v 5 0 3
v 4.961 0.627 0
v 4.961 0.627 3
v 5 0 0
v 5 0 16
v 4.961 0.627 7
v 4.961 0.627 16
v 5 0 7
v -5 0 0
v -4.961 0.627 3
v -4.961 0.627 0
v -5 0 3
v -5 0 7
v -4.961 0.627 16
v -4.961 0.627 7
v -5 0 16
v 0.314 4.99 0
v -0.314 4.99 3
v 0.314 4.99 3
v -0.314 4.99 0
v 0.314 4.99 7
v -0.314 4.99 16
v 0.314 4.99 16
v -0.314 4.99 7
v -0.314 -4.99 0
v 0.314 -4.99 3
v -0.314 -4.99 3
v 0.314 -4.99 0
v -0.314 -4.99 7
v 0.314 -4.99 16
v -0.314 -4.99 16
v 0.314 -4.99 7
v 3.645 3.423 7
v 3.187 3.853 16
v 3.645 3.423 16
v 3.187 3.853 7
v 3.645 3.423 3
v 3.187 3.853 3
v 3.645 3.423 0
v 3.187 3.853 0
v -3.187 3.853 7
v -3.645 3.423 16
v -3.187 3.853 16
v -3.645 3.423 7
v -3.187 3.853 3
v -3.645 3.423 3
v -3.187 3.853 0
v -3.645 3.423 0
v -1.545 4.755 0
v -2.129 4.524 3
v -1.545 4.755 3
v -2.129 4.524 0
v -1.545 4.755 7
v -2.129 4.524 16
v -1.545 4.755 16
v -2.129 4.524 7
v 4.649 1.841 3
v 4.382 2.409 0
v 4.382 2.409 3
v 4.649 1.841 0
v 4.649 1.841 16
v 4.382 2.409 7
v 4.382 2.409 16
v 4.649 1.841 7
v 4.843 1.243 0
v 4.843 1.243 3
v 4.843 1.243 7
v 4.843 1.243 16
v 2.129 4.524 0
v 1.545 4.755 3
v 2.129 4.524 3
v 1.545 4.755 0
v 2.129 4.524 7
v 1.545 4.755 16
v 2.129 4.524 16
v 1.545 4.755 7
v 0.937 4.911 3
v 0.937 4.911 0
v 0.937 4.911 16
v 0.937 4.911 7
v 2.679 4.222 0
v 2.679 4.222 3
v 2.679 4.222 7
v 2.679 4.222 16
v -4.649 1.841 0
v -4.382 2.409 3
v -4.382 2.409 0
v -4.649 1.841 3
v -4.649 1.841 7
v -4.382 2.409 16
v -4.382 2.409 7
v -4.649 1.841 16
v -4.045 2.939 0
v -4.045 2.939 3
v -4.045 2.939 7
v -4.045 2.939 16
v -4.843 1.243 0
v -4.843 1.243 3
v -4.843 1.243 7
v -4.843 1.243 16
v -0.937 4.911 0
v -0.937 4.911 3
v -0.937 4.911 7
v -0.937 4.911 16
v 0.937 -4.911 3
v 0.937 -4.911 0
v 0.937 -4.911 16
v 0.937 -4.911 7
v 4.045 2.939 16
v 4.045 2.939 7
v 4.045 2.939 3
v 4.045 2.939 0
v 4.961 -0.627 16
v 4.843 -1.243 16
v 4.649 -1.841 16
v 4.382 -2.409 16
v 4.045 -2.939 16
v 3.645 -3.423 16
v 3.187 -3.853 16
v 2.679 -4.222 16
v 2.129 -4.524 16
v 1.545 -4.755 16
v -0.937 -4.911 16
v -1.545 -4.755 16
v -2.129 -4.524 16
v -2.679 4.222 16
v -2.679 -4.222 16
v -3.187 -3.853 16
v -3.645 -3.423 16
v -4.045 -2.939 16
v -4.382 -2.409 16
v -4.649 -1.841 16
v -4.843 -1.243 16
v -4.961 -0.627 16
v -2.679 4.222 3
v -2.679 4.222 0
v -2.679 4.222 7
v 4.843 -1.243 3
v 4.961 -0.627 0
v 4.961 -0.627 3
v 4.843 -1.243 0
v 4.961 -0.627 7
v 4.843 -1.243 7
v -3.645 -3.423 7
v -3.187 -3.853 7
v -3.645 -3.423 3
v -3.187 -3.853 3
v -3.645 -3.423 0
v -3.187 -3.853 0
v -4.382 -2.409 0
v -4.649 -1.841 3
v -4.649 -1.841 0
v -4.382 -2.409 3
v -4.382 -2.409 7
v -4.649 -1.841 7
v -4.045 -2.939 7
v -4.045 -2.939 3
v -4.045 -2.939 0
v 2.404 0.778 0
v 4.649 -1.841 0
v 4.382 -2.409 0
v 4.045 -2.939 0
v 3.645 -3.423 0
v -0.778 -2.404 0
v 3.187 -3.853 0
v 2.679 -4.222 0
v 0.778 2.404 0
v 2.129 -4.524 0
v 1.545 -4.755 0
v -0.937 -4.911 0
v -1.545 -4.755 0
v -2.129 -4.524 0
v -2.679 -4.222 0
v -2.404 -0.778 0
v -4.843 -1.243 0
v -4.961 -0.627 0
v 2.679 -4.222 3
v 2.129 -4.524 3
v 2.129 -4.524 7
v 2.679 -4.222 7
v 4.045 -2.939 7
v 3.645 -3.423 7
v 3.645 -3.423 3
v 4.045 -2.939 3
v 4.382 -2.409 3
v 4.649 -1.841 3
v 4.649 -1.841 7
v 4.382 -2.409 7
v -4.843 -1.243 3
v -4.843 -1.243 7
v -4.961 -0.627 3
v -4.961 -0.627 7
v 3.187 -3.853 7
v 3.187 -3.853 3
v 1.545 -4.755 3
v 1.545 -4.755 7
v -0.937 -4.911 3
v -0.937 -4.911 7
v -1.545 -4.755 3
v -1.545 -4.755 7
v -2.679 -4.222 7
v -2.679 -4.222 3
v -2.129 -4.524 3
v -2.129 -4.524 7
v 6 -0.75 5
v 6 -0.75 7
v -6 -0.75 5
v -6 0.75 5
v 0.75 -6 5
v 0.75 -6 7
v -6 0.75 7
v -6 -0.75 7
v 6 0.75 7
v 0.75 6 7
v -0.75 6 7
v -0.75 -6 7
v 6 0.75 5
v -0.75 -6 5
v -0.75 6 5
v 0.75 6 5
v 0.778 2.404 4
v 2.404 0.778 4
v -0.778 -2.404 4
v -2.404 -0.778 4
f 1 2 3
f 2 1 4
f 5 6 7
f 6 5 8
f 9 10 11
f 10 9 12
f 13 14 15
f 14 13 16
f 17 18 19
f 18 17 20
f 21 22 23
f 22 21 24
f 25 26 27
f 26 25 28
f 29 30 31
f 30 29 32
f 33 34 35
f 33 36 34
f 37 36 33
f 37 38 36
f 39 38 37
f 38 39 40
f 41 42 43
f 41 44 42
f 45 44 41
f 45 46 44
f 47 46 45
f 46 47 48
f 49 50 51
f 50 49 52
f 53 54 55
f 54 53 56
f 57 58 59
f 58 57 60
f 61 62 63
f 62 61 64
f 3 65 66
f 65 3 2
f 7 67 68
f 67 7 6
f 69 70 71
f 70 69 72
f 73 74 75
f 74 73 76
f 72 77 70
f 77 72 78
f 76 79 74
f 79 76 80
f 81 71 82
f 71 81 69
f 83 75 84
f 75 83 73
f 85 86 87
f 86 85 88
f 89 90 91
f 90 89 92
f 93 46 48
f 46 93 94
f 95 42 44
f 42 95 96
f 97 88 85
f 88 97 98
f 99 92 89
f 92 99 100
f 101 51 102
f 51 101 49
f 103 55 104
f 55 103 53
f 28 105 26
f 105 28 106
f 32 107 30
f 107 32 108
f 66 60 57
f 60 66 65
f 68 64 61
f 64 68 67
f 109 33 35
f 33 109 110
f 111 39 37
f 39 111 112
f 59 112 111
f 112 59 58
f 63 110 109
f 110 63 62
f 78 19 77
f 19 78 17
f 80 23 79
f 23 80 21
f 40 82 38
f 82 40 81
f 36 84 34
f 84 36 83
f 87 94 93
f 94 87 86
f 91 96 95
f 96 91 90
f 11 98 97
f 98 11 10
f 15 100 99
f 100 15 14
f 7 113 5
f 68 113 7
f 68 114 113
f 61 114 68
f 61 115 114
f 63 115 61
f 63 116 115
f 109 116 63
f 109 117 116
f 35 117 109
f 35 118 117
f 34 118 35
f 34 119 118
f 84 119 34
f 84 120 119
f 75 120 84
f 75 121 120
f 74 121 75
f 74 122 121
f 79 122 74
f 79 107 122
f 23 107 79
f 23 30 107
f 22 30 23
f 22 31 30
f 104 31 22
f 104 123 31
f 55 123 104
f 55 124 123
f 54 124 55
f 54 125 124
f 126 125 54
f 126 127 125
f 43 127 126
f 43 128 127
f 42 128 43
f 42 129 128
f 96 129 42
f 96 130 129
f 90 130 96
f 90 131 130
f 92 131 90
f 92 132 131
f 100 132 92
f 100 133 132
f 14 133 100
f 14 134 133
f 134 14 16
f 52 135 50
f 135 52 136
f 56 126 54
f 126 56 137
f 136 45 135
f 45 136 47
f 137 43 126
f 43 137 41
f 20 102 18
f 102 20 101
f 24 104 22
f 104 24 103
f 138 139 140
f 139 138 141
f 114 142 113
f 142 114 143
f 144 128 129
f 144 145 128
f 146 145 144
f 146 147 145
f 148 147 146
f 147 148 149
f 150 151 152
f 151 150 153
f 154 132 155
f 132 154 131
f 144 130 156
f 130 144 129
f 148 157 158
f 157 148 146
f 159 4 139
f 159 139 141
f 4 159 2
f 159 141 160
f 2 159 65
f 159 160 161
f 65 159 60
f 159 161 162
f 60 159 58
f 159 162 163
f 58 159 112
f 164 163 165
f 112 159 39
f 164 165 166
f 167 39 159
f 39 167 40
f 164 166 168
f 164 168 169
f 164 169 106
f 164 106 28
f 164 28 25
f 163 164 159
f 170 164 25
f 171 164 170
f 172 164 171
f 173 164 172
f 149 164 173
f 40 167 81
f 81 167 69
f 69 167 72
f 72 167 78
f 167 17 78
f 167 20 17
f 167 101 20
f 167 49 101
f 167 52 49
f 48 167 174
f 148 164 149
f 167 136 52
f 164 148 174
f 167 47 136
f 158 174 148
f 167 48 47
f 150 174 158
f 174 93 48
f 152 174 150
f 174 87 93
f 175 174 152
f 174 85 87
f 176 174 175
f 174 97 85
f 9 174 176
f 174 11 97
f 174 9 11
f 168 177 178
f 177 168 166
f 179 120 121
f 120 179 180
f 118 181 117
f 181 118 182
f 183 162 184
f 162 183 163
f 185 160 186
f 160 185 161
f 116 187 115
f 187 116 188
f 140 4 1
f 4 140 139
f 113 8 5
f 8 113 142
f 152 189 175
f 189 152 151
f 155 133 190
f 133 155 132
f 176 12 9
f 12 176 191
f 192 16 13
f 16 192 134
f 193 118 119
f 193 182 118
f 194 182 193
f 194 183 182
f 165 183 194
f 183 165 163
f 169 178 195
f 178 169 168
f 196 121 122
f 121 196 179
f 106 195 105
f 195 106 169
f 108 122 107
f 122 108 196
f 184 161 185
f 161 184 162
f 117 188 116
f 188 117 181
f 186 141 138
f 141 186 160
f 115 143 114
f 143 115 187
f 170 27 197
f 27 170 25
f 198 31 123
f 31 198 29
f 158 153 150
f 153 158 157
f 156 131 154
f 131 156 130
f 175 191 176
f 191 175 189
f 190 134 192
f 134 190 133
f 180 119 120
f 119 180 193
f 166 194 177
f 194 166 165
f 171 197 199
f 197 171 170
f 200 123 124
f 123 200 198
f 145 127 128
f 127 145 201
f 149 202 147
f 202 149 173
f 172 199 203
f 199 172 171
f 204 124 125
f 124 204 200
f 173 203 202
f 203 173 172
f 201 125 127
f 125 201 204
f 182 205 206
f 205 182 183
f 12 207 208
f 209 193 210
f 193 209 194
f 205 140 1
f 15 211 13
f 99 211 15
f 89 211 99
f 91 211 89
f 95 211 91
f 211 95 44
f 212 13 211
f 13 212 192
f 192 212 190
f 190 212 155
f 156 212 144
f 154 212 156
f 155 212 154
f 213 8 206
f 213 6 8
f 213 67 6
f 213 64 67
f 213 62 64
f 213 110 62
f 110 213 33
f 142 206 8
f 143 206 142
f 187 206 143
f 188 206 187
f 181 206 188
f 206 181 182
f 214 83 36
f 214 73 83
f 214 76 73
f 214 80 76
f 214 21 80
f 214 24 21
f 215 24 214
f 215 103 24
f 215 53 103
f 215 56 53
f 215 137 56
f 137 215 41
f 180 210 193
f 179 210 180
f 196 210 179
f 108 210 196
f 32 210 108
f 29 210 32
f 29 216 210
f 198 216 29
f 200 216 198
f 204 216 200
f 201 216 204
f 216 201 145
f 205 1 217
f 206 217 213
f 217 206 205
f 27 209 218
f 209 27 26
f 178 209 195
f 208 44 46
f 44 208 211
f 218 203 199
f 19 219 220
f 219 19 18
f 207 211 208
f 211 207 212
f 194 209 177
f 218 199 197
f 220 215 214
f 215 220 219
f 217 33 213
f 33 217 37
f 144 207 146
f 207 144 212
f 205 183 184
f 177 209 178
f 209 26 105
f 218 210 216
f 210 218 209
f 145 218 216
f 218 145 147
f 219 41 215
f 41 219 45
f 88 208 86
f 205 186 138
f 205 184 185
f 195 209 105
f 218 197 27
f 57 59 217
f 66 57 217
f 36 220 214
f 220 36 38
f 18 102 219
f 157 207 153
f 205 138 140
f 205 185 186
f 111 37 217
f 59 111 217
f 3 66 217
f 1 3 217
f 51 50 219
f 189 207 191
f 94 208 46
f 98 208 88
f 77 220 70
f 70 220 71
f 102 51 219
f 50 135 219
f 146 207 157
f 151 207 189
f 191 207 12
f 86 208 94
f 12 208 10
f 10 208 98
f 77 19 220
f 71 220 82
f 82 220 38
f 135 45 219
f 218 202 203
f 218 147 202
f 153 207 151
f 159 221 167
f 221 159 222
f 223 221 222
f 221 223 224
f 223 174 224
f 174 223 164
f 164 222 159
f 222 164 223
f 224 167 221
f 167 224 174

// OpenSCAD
dia = 10;
height_top = 5;
support_offset = 1;
support_heigth = 9;
support_length = 2;
support_width = 1.5;
hole = [4.5, 2.3];
hole_deep = 4;
wall_thickness = 2;

/******************************************************************************/

$fn = 50;
height = height_top + wall_thickness + support_heigth;
support_size = dia + support_offset*2;

/******************************************************************************/


difference() {
	union() {
		cylinder(d=dia, h=height);

		translate([0, 0, -support_length/2+support_heigth-wall_thickness]) {
			hull() {
				cube(size=[support_size, support_width, support_length], center=true);
				cube(size=[support_width, support_size, support_length], center=true);
				translate([0, 0, -support_length/2]) {
					cylinder(d=dia, h=support_length*2, center=true);
				}
			}
		}
	}

	rotate([0, 0, 45]) translate([-hole[0]/2, -hole[1]/2, -1]) {
		cube(size=[hole[0], hole[1], hole_deep+1]);
	}
}
